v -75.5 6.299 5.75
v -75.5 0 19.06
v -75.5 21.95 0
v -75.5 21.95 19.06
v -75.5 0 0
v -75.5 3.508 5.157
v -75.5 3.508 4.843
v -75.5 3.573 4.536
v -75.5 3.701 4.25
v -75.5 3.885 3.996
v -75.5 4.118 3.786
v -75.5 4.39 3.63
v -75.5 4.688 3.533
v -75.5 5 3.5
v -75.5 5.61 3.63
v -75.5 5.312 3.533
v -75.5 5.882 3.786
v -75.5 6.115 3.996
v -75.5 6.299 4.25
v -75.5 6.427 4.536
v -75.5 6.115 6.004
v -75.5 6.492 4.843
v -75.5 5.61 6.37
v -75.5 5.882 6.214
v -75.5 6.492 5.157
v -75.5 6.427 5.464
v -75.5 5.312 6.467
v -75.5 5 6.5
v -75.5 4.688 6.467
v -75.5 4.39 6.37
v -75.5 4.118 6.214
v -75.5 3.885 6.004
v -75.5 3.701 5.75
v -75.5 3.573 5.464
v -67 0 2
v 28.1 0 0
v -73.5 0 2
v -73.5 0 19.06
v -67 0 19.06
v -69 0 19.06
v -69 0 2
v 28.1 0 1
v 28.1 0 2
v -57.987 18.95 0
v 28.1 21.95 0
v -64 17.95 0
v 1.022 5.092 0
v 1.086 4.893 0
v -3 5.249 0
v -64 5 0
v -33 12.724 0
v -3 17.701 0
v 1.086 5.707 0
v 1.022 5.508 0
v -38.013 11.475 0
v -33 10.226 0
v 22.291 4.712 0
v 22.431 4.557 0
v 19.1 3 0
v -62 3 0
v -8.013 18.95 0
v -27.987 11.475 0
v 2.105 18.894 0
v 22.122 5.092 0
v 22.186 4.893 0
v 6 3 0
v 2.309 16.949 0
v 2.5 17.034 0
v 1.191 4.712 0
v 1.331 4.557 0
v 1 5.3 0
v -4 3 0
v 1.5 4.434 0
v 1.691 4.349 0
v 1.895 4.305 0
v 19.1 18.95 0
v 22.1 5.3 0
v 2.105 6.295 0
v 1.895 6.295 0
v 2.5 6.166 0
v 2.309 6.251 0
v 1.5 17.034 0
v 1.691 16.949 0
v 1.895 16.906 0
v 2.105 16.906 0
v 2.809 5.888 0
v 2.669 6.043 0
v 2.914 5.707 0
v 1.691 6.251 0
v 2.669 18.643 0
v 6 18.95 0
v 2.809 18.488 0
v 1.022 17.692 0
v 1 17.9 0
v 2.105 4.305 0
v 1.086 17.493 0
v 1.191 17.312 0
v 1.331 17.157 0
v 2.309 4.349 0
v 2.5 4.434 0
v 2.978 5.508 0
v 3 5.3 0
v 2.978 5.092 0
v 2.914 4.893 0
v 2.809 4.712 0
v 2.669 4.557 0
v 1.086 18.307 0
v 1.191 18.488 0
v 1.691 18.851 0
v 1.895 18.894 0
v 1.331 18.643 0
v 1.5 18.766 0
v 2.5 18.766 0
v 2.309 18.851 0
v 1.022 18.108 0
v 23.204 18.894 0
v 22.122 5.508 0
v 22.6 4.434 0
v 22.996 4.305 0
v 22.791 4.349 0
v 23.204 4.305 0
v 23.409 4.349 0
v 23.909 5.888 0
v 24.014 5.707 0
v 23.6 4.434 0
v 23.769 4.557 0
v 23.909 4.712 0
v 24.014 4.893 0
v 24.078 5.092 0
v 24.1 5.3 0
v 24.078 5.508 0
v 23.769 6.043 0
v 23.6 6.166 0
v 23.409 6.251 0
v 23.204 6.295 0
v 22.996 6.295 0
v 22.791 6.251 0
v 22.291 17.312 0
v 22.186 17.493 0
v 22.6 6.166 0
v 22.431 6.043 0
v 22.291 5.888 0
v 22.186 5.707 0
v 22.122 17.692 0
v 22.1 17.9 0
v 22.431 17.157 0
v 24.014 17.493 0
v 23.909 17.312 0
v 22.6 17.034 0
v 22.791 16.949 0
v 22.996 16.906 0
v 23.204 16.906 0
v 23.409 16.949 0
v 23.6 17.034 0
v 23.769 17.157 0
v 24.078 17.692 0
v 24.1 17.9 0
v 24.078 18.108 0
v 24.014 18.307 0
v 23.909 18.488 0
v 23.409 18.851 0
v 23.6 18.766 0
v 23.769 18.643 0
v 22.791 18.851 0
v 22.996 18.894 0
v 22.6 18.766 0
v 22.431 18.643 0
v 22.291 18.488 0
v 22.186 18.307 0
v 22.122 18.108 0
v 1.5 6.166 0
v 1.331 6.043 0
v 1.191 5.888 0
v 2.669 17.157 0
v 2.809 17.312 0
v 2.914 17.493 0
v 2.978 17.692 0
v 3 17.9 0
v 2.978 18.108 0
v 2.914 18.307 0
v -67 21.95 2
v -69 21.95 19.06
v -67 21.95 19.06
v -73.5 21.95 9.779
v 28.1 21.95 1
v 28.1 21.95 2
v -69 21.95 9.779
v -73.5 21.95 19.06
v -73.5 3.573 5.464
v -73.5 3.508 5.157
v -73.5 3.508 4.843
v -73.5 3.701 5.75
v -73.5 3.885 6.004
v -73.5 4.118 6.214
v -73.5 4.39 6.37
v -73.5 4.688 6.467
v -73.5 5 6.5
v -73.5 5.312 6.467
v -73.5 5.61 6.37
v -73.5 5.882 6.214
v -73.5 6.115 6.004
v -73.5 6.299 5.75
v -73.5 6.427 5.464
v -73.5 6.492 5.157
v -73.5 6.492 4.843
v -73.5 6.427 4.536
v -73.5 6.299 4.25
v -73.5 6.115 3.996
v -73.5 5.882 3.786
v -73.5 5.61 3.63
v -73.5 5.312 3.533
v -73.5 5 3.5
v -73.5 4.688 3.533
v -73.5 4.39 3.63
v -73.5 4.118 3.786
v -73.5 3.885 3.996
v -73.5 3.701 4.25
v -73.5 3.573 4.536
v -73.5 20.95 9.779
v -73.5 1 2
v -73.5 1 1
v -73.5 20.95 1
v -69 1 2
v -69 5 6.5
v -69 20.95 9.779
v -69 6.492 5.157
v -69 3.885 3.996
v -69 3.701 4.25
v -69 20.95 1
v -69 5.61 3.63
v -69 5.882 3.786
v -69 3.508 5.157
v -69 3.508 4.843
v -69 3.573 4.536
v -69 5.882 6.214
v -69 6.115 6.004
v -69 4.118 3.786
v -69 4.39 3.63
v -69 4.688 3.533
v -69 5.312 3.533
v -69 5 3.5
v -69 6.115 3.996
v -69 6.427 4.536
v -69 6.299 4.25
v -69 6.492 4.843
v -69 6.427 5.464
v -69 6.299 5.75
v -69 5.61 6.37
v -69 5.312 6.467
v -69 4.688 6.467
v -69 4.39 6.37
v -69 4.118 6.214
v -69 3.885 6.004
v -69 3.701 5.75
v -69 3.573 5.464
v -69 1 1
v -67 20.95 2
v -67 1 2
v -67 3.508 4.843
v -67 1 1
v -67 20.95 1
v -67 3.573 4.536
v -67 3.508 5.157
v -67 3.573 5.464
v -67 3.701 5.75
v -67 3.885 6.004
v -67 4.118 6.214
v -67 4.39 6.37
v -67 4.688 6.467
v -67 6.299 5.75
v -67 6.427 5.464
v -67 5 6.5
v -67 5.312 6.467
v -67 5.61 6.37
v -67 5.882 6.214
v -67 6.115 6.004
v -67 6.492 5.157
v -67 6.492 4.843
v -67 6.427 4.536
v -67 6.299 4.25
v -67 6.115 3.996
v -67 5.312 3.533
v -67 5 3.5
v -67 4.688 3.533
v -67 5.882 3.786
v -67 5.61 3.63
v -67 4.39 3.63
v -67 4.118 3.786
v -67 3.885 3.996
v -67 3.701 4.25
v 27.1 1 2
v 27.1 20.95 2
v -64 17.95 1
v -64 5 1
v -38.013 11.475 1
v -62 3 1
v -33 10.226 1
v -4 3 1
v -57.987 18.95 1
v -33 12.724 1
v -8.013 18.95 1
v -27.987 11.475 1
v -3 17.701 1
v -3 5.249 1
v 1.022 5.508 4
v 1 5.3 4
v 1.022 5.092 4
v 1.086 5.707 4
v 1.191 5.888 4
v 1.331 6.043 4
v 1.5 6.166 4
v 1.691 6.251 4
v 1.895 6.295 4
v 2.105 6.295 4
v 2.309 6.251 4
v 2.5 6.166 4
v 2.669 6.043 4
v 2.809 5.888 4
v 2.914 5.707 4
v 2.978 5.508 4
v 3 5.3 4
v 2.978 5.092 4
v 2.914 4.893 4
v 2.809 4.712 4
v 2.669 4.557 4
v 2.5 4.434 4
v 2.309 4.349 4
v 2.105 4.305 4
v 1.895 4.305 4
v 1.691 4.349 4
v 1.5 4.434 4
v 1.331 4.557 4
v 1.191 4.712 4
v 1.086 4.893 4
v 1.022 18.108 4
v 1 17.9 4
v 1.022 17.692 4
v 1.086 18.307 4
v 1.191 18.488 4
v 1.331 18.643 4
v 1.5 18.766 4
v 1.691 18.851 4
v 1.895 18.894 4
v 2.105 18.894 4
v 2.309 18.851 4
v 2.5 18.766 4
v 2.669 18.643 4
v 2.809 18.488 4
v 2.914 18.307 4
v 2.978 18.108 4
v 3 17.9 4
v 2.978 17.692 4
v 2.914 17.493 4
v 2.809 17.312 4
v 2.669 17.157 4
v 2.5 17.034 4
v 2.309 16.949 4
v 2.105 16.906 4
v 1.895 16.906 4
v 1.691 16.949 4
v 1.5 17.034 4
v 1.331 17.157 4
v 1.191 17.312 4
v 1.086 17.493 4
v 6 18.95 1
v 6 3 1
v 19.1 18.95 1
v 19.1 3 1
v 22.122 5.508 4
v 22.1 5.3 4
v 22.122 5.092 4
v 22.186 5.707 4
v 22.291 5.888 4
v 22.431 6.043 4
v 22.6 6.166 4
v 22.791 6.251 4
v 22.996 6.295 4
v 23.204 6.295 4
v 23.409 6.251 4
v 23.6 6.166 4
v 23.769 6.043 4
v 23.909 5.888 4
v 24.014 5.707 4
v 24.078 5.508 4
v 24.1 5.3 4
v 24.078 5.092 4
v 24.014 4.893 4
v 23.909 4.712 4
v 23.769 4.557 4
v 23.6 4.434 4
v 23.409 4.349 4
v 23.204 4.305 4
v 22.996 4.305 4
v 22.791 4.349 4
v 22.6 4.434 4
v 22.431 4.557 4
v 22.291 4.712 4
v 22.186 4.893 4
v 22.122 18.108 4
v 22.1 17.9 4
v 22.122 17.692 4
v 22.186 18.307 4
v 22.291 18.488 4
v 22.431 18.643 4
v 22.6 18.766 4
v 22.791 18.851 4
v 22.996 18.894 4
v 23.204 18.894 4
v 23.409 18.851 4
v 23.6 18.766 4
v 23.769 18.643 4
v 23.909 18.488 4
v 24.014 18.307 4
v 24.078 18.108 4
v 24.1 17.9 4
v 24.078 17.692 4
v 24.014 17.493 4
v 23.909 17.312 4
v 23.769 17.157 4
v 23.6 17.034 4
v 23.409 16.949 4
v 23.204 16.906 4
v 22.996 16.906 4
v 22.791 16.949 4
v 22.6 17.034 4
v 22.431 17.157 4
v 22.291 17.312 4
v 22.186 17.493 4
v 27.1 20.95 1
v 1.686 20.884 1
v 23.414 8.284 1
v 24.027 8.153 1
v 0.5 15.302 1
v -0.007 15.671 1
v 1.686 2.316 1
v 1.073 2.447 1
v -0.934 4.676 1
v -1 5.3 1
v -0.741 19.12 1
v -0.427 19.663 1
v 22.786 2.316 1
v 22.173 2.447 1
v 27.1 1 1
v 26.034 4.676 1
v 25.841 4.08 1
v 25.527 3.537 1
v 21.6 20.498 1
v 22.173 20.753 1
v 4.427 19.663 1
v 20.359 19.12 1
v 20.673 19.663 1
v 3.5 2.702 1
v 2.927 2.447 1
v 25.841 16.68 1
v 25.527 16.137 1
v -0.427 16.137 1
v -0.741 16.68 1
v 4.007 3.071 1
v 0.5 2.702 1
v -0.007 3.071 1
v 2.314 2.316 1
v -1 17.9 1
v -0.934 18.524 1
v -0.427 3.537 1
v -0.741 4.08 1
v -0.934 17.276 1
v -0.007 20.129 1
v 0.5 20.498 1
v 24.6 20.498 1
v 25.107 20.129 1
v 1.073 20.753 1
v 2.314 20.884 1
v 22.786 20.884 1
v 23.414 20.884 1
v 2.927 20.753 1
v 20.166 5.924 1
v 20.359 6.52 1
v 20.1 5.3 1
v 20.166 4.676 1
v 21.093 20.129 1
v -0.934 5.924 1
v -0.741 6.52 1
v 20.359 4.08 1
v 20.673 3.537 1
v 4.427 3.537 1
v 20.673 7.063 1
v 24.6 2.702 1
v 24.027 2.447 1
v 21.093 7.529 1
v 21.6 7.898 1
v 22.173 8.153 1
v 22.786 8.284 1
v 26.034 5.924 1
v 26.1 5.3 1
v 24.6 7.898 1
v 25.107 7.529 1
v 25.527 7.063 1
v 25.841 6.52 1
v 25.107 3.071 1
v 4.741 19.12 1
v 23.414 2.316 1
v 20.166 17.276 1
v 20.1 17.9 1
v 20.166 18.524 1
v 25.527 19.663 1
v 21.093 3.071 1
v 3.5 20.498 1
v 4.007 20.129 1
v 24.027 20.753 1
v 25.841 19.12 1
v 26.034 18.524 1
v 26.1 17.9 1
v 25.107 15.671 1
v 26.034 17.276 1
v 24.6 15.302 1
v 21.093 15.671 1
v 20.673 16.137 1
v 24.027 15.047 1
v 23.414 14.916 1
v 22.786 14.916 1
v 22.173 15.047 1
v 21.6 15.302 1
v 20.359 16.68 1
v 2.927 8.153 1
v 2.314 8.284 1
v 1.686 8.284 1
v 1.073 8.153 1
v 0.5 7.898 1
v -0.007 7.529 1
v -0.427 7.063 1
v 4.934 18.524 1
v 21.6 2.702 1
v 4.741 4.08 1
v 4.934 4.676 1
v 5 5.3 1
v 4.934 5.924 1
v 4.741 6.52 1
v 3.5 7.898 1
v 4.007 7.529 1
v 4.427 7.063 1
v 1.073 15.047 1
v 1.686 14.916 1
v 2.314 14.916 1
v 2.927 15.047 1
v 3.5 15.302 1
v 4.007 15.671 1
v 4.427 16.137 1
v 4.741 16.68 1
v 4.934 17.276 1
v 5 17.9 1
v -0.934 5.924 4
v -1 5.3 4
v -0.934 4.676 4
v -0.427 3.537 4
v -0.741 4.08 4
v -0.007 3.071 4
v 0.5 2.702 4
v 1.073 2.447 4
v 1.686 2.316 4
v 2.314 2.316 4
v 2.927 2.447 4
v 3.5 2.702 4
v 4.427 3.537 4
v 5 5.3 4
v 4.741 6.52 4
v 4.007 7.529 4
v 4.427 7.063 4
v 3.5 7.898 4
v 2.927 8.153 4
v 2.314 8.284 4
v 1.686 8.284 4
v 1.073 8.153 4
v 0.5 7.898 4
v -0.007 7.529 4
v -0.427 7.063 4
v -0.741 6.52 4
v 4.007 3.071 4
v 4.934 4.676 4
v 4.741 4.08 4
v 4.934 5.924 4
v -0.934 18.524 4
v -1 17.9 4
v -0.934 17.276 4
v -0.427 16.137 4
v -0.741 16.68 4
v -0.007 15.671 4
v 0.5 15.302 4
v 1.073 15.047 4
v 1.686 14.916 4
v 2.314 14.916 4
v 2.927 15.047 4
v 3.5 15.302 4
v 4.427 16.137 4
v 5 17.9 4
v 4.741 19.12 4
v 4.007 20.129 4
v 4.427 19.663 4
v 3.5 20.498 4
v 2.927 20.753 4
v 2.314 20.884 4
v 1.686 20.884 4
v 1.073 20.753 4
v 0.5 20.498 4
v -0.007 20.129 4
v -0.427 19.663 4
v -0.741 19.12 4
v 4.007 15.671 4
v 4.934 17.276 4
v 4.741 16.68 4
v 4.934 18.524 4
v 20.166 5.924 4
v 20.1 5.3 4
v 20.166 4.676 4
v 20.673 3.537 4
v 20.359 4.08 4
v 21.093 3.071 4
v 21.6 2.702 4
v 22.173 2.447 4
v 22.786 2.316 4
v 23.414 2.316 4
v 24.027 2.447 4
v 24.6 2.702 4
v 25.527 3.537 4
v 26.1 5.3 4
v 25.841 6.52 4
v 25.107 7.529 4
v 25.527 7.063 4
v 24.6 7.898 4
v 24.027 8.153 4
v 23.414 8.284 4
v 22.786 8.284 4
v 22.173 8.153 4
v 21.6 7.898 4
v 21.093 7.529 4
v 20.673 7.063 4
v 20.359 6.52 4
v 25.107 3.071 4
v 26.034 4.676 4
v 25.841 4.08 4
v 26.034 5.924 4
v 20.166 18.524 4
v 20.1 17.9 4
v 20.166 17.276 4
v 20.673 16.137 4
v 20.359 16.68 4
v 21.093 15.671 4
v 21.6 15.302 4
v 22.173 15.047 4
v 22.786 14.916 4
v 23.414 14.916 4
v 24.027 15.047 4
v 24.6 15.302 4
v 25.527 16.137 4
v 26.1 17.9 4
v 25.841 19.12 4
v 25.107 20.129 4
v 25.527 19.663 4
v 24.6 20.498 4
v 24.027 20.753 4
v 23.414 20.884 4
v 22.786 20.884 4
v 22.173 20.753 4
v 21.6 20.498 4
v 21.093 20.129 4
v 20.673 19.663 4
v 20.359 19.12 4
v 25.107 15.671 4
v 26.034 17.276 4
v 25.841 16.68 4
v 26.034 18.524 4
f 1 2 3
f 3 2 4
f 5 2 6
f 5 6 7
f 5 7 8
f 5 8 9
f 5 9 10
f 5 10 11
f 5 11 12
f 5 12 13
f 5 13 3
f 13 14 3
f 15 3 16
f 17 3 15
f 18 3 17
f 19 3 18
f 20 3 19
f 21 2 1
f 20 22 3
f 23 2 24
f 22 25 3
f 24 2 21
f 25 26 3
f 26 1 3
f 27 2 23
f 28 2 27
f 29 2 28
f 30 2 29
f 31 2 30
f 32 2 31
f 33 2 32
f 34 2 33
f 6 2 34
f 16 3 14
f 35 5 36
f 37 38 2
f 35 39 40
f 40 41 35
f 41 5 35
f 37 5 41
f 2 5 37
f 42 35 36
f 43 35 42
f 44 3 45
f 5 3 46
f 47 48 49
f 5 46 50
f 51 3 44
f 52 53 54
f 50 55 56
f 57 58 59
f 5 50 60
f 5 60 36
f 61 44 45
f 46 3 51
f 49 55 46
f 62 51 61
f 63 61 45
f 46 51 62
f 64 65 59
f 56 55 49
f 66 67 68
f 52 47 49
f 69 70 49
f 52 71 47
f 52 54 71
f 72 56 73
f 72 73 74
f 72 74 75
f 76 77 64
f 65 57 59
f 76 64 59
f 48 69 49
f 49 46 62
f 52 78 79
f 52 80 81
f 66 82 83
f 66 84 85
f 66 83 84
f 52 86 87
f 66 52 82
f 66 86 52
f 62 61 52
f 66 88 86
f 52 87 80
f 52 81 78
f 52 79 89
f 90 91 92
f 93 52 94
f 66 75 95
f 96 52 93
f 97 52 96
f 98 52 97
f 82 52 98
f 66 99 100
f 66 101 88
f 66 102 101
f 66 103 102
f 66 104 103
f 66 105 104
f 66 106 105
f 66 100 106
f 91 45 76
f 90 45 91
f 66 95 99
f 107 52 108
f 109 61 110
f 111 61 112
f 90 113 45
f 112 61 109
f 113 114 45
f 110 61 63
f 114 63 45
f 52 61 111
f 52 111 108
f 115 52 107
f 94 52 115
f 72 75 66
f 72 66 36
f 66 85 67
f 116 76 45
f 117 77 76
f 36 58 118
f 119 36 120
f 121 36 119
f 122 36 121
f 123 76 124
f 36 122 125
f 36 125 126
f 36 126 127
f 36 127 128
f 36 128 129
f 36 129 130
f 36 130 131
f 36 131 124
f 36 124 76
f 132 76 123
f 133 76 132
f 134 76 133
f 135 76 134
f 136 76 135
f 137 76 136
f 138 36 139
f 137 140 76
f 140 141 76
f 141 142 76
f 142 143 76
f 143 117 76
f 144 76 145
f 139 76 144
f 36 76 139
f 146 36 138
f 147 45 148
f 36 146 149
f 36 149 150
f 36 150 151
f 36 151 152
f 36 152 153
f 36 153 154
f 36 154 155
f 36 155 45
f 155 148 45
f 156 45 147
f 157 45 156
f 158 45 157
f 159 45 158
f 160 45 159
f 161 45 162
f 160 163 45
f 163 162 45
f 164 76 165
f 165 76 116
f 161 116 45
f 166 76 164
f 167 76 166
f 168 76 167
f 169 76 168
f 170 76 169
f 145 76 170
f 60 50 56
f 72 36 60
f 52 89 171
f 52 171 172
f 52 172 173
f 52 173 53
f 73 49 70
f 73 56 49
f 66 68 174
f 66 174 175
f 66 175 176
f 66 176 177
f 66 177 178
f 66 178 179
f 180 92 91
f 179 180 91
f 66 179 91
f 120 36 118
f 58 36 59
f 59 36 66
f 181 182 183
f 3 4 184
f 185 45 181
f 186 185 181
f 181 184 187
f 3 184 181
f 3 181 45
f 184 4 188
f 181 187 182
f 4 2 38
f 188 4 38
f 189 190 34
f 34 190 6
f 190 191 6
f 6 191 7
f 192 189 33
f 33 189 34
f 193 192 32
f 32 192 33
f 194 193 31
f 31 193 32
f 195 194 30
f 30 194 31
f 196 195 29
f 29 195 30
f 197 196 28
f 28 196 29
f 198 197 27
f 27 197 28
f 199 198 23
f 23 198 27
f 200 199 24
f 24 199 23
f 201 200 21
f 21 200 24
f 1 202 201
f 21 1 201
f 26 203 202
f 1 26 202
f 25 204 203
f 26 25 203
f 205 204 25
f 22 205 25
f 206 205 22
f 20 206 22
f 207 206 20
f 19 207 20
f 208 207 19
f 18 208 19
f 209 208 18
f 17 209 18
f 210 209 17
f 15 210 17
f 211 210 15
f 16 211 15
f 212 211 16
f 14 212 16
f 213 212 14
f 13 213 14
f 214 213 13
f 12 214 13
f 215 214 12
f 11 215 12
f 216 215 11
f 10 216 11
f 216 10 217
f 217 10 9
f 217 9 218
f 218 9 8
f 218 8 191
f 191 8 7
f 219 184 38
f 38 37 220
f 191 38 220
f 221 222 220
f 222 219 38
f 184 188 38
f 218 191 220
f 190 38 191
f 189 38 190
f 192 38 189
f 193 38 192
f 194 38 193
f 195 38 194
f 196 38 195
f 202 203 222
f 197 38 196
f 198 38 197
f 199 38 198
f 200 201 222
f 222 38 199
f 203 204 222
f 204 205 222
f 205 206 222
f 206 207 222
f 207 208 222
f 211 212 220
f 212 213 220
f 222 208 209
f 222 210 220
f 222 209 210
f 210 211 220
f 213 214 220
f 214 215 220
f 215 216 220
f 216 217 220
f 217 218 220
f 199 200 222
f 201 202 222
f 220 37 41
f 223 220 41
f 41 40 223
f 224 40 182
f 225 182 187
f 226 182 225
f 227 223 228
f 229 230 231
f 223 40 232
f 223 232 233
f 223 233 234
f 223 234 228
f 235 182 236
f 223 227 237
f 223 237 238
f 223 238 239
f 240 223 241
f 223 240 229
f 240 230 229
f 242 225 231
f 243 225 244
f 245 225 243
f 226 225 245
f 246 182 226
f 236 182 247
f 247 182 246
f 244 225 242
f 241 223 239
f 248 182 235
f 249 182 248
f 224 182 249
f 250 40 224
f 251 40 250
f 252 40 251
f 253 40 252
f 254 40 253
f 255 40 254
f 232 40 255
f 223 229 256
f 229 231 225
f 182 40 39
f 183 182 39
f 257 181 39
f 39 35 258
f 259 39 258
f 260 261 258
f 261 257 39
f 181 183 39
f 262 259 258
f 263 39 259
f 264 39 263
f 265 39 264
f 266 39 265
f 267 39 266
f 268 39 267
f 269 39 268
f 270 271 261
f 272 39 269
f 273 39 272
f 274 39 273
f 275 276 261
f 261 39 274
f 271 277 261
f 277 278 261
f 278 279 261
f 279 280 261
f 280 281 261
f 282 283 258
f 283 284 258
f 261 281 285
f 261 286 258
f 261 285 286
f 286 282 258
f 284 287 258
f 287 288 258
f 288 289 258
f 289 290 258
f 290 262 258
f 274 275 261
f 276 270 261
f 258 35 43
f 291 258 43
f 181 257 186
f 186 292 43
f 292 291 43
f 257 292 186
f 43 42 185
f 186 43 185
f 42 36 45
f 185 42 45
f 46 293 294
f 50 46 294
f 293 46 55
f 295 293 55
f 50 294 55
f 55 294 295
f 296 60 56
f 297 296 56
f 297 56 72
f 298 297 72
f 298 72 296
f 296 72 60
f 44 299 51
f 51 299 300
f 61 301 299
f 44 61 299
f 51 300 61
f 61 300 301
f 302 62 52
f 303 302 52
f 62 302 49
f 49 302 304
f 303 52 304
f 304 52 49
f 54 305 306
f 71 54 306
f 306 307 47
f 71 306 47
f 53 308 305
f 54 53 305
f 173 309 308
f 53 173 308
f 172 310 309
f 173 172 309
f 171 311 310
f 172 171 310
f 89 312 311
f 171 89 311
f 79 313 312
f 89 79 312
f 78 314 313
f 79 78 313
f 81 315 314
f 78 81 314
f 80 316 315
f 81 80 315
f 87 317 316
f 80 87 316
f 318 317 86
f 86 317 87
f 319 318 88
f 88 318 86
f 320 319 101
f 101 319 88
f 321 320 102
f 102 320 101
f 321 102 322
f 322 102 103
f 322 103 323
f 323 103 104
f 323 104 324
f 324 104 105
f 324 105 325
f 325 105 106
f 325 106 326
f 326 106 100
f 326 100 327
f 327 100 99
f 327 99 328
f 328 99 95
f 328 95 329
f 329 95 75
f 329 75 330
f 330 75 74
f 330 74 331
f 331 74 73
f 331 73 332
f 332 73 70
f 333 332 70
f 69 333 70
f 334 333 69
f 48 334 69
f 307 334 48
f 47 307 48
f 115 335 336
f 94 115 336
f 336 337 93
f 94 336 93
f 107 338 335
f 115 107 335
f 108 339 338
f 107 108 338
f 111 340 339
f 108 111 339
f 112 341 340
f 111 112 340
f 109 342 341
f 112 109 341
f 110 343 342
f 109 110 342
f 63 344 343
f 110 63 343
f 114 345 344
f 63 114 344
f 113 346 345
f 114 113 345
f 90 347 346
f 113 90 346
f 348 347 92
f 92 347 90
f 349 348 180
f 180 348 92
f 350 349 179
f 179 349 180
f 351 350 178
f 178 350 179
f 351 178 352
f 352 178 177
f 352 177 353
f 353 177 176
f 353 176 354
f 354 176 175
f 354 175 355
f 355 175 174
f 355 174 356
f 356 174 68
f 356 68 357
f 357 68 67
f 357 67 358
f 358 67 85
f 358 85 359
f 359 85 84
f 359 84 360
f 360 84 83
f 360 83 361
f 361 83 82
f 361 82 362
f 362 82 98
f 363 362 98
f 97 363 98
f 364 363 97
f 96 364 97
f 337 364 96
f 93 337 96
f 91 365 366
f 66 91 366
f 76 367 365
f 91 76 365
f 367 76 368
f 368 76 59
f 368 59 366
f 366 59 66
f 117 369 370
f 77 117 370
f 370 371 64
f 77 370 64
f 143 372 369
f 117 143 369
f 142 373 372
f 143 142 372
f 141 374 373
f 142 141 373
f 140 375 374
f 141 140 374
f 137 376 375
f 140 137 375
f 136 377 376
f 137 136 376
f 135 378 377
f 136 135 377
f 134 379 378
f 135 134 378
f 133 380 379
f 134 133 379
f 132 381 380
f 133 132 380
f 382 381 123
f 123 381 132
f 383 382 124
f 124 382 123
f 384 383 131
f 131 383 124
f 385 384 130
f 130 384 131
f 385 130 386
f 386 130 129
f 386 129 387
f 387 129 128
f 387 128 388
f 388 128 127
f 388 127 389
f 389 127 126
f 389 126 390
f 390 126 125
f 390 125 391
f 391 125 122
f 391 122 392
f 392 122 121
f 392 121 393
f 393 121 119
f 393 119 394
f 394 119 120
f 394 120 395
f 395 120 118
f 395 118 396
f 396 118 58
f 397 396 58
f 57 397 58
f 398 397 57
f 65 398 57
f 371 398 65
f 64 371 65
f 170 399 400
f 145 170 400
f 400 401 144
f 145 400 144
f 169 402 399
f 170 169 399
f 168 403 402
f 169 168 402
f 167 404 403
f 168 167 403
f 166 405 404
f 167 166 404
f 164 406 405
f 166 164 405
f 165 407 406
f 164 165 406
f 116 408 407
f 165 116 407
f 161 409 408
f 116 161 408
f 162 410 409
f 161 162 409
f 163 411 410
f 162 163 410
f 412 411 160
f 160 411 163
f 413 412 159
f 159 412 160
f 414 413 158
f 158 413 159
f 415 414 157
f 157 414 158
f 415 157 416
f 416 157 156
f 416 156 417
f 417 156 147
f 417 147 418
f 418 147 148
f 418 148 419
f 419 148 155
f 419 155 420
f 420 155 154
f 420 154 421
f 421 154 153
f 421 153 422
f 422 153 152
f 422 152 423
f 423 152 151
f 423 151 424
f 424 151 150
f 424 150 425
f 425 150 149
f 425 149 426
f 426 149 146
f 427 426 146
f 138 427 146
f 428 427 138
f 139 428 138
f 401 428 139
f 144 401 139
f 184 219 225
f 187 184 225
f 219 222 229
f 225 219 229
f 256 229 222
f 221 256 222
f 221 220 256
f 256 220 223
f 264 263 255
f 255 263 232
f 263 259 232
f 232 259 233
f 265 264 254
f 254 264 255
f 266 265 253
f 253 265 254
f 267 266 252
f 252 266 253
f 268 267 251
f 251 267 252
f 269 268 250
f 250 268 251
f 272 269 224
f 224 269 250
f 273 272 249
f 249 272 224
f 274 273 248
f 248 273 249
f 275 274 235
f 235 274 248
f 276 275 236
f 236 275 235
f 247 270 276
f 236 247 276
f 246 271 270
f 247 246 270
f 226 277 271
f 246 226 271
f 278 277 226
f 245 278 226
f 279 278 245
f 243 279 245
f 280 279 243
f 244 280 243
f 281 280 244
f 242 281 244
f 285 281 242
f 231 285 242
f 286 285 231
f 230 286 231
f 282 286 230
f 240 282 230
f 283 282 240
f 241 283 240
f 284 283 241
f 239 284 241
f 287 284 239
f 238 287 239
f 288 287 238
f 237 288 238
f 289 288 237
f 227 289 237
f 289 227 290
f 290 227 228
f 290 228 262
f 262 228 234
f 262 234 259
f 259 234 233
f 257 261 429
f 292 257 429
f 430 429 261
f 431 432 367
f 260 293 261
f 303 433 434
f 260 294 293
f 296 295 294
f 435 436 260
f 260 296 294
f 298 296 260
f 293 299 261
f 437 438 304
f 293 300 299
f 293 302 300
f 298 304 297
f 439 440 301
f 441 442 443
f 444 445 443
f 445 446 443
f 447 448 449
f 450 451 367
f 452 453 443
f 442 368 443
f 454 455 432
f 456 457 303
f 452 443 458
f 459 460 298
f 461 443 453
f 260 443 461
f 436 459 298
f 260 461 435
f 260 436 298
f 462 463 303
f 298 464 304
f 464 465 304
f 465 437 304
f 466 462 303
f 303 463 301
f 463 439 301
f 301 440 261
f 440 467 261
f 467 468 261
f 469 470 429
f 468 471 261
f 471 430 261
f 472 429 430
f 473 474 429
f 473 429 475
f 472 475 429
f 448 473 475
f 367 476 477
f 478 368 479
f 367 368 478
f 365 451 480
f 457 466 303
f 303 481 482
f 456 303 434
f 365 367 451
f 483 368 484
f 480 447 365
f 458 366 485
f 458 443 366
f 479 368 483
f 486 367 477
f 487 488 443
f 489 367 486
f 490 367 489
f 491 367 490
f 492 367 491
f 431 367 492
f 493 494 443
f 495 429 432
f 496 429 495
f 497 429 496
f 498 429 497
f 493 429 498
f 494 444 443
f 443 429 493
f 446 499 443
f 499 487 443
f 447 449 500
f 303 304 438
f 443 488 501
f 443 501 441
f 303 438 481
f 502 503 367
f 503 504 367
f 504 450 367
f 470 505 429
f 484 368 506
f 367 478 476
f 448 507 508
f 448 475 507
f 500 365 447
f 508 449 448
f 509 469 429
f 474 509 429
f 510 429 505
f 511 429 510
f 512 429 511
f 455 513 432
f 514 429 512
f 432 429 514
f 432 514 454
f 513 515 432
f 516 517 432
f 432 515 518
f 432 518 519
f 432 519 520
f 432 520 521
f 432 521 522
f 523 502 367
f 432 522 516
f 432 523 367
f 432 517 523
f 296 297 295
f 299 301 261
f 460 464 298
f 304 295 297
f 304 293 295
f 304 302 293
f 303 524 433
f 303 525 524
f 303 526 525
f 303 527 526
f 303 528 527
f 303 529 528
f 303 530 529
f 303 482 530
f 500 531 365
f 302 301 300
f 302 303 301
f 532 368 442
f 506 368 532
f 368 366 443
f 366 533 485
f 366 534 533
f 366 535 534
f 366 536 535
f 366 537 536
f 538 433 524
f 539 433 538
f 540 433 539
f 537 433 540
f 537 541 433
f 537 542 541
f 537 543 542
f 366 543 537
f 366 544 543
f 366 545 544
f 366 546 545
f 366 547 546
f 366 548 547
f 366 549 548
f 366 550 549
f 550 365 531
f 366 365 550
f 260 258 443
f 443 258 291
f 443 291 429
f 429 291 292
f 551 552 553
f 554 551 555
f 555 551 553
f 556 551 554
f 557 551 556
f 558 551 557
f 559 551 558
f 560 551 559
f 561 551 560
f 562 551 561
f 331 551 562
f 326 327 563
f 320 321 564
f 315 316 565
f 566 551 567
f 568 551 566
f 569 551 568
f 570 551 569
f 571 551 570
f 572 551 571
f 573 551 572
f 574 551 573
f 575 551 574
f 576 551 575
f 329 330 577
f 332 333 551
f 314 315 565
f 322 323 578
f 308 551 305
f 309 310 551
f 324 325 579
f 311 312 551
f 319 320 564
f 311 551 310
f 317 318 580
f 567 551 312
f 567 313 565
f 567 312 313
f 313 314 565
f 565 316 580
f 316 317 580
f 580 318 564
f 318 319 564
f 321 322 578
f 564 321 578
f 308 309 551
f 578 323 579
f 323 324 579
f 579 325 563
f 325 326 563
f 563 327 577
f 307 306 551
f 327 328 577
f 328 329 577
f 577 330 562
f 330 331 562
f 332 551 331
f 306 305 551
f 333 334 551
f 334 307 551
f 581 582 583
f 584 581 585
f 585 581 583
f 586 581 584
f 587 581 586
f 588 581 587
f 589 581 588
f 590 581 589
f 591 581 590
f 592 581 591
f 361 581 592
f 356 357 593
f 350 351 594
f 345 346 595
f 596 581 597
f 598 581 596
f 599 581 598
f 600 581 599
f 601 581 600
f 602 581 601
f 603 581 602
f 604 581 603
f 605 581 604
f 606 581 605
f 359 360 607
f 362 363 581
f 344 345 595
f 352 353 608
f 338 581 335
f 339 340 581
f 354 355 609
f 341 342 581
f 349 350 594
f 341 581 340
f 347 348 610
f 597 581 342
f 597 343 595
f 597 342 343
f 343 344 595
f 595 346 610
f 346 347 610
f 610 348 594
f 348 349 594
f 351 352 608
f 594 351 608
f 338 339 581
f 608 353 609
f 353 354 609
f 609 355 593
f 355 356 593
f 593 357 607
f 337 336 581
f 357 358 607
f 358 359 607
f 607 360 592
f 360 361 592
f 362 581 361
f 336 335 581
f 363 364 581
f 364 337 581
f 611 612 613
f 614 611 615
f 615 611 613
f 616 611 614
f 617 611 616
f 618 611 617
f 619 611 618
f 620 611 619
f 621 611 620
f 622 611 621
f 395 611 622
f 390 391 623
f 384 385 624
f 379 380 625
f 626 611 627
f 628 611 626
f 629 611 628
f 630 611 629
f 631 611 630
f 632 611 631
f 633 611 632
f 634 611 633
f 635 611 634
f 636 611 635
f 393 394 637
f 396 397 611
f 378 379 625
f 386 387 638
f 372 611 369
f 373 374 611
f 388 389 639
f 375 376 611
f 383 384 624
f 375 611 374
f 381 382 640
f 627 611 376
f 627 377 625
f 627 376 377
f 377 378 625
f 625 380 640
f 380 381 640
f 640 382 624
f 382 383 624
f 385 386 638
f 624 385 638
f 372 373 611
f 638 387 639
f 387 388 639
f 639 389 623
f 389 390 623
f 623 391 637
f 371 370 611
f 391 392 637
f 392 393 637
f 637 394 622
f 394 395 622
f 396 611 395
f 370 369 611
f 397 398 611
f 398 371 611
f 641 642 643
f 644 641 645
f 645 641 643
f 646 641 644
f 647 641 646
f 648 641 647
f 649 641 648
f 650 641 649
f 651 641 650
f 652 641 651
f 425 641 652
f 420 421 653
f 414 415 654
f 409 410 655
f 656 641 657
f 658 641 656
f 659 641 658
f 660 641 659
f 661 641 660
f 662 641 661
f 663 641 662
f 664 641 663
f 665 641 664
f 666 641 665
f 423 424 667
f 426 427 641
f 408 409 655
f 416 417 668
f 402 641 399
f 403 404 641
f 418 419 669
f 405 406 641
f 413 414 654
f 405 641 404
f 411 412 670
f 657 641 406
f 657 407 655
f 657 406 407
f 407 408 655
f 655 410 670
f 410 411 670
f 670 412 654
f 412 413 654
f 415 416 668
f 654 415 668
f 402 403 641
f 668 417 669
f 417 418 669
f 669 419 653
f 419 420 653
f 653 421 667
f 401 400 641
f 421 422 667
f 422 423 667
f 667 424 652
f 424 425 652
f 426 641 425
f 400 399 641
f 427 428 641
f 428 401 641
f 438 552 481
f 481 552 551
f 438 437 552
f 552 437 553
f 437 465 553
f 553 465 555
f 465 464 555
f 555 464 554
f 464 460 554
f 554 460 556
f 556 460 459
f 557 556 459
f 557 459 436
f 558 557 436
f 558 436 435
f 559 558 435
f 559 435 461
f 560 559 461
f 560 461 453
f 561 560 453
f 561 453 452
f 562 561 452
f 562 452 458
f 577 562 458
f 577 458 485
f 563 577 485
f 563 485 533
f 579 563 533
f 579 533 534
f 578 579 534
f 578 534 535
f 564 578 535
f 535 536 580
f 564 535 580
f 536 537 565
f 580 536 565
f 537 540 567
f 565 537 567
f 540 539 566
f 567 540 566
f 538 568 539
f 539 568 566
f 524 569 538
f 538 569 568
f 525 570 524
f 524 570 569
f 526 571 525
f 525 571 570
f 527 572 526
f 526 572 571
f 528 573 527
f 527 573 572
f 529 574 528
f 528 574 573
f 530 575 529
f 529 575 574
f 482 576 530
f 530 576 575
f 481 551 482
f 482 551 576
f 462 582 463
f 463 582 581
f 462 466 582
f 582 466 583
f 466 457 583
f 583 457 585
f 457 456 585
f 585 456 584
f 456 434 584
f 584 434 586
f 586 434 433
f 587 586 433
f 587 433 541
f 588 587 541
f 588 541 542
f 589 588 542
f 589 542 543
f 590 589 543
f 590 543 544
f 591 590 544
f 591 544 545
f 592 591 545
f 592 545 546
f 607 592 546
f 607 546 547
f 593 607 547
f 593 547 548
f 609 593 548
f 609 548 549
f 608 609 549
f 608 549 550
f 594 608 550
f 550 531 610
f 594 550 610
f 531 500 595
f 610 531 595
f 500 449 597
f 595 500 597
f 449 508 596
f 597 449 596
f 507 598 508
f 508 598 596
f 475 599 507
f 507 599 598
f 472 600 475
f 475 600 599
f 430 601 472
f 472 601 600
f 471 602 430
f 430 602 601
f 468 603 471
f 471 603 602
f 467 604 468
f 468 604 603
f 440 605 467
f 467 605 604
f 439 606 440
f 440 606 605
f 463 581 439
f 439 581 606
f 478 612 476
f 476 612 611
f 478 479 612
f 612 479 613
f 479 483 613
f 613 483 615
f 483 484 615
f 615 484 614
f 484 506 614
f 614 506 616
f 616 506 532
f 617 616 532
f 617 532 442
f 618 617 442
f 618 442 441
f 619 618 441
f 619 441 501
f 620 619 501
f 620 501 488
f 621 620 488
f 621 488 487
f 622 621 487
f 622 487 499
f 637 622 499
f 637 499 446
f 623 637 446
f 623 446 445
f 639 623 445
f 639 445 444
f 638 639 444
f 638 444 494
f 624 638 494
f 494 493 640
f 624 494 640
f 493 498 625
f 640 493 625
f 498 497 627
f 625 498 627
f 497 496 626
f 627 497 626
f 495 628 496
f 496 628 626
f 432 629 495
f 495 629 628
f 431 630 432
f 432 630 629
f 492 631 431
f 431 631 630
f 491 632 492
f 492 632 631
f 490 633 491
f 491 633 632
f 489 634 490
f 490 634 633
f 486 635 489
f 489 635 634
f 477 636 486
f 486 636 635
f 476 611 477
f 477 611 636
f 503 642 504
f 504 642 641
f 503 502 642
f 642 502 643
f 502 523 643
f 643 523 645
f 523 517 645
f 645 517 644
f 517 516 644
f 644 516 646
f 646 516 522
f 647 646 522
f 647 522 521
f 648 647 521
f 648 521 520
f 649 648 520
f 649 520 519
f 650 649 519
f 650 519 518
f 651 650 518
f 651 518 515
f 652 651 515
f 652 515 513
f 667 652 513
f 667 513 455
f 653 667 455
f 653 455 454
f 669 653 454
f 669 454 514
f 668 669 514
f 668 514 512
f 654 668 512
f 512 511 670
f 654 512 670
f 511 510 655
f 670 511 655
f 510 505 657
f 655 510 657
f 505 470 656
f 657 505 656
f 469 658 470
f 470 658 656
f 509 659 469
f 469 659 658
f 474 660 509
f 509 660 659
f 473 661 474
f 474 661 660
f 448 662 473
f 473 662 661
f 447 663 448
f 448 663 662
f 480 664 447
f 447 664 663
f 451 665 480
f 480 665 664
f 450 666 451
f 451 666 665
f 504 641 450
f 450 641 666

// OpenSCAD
// file: lib/pibox.scad
j=1;
$fn=30;

hinge_bolt=3; // Bolt diameter
hinge_slack=0.2;

module PiCam(ribbon=true, extend_holes=true)
{
	// PCB
	color([0.2,0.5,0])
	difference()
	{
		cube([25.1, 23.9, 2]);
		translate([2, 9.3, -j])cylinder(r=1, h=3+j+j);
		translate([2, 21.9, -j])cylinder(r=1, h=3+j+j);
		translate([23.1, 9.3, -j])cylinder(r=1, h=3+j+j);
		translate([23.1, 21.9, -j])cylinder(r=1, h=3+j+j);
	}
	if(extend_holes)
	{
		translate([2, 9.3, -10])cylinder(r=1, h=20);
		translate([2, 21.9, -10])cylinder(r=1, h=20);
		translate([23.1, 9.3, -10])cylinder(r=1, h=20);
		translate([23.1, 21.9, -10])cylinder(r=1, h=20);
	}
	
	// Camera
	color([0.3, 0.3, 0.3]) translate([8.6, 5.8, 2]) cube([8, 8, 3.5]);
	color([0.2, 0.2, 0.2]) translate([12.6, 9.8, 2]) cylinder(r=5.5/2, h=5.4);

	// Ribbon connector
	color([0.5, 0.5, 0]) translate([(25.1-20.8)/2, 0, -2.8]) cube([20.8, 5.8, 2.8]);
	
	// Ribbon
	if(ribbon)
	{
		translate([(25.1-16)/2, -100, -1]) cube([16, 100, 0.15]);
	}
	
}



!PiCam();

module Claw()
{
	translate([hinge_bolt*1.5, 0, 0])
	difference()
	{
		union()
		{
			cylinder(r=hinge_bolt, h=hinge_bolt-hinge_slack, center=true);
			translate([-hinge_bolt*0.75, 0, 0]) cube([hinge_bolt*1.5, hinge_bolt*2, hinge_bolt-hinge_slack], center=true);
		}
		cylinder(r=hinge_bolt/2, h=hinge_bolt-hinge_slack+j+j, center=true);
	}
}

module ClawFemale()
{
	color([0.3, 0.5, 0])
	{
		translate([-6, 0, 0]) rotate([0, 270, 0]) Claw();
		rotate([0, 270, 0]) Claw();
		translate([6, 0, 0]) rotate([0, 270, 0]) Claw();
	}
}

module ClawMale()
{
	color([0.4, 0.7, 0])
	{
		translate([-3, 0, 0]) rotate([0, 270, 0]) Claw();
		translate([3, 0, 0]) rotate([0, 270, 0]) Claw();
	}
}

module Stand()
{
	translate([-10, -hinge_bolt, 0]) cube([20, hinge_bolt*2, 100]);
	translate([0, 0, 100]) ClawFemale();
}

module Top()
{
	translate([-15, 0, -hinge_bolt]) cube([30, 30, 10]);
	rotate([90, 0, 0]) ClawMale();
}

translate([0, -100-hinge_bolt*1.5, 0])
rotate([-90, 0, 0]) Stand();

translate([0, hinge_bolt*1.5, 0])
Top();
// main file
use <lib/pibox.scad>

// Hole radius
r_hole=1;

// Structural thickness
t=1;

// Distance from panel to camera (min is ~13mm)
camera_offset=80;

// Fixing bolt radius
fix_bolt=1.5;

// Panel thickness
p=6.5;

// Panel angle
a=21.8;

// Jitter
j=0.1;


/* [Hidden] */
w=max(8, camera_offset-13);
h=23.95-2;


module PiCamMount()
{
	union()
	{
		difference()
		{
			// Brackets
			union()
			{
				translate([-w-p-t*2, 0, t]) cube([t*2, h, 11.56+p]);
				translate([-w-t*2, 0, t]) cube([t*2, h, 11.56+p]);
			}

			// Fixing holes
			translate([-w-p-t*2-j, t*5, t*5]) rotate([0, 90, 0]) cylinder(r=fix_bolt, h=p+t*2+j*2, $fn=30);
		}

		// Angle Support
		translate([-w-p, h-t, t]) cube([p, t, tan(a)*h]);

		// Supports
		translate([-w, h-t, t]) cube([25.1+3+w, t, 1]); // top
		translate([-w-p-t*2, 0, t]) cube([25.1+3+w+p+t*2, t, 1]); //bottom
		translate([25.1+3-t, 0, t]) cube([t, h, 1]); //right

		// Reinforce the big hole
		if(w > 10)
		{
			hull()
			{
				translate([-w+t*3, t*3, 0]) cube([t*2, t*2, t]); // diagonal
				translate([-t*4, h-t*4, 0]) cube([t*2, t*2, t]); // diagonal
			}
			hull()
			{
				translate([-w+t*3, h-t*4, 0]) cube([t*2, t*2, t]); // diagonal 2
				translate([-t*4, t*3, 0]) cube([t*2, t*2, t]); // diagonal 2
			}
		}

		difference()
		{
			union()
			{
				// Base plate
				translate([-w-p-t*2, 0, 0]) cube([25.1+3+w+p+t*2, h, t]);

				// Hole reinforcers and pi-spacer
				translate([2, 9.3-4, 0]) cylinder(r=r_hole*3, h=t*4, $fn=30);
				translate([2, 21.9-4, 0]) cylinder(r=r_hole*3, h=t*4, $fn=30);
				translate([23.1, 9.3-4, 0]) cylinder(r=r_hole*3, h=t*4, $fn=30);
				translate([23.1, 21.9-4, 0]) cylinder(r=r_hole*3, h=t*4, $fn=30);
			}

			// Thin out the base
			if(w > 10)
			{
				translate([-w+t*3, t*3, -j]) cube([w-t*6, h-t*6, t+j*2]);
			}
			translate([2+r_hole+t*3, t*3, -j]) cube([23.1-2-r_hole*2-t*6, h-t*6, t+j*2]);

			// PiCam Holes
			union()
			{
				translate([2, 9.3-4, -10]) cylinder(r=r_hole, h=20, $fn=30);
				translate([2, 21.9-4, -10]) cylinder(r=r_hole, h=20, $fn=30);
				translate([23.1, 9.3-4, -10]) cylinder(r=r_hole, h=20, $fn=30);
				translate([23.1, 21.9-4, -10]) cylinder(r=r_hole, h=20, $fn=30);
			}
		}
	}
}


//%translate([0, -4, 5]) PiCam();
PiCamMount();
